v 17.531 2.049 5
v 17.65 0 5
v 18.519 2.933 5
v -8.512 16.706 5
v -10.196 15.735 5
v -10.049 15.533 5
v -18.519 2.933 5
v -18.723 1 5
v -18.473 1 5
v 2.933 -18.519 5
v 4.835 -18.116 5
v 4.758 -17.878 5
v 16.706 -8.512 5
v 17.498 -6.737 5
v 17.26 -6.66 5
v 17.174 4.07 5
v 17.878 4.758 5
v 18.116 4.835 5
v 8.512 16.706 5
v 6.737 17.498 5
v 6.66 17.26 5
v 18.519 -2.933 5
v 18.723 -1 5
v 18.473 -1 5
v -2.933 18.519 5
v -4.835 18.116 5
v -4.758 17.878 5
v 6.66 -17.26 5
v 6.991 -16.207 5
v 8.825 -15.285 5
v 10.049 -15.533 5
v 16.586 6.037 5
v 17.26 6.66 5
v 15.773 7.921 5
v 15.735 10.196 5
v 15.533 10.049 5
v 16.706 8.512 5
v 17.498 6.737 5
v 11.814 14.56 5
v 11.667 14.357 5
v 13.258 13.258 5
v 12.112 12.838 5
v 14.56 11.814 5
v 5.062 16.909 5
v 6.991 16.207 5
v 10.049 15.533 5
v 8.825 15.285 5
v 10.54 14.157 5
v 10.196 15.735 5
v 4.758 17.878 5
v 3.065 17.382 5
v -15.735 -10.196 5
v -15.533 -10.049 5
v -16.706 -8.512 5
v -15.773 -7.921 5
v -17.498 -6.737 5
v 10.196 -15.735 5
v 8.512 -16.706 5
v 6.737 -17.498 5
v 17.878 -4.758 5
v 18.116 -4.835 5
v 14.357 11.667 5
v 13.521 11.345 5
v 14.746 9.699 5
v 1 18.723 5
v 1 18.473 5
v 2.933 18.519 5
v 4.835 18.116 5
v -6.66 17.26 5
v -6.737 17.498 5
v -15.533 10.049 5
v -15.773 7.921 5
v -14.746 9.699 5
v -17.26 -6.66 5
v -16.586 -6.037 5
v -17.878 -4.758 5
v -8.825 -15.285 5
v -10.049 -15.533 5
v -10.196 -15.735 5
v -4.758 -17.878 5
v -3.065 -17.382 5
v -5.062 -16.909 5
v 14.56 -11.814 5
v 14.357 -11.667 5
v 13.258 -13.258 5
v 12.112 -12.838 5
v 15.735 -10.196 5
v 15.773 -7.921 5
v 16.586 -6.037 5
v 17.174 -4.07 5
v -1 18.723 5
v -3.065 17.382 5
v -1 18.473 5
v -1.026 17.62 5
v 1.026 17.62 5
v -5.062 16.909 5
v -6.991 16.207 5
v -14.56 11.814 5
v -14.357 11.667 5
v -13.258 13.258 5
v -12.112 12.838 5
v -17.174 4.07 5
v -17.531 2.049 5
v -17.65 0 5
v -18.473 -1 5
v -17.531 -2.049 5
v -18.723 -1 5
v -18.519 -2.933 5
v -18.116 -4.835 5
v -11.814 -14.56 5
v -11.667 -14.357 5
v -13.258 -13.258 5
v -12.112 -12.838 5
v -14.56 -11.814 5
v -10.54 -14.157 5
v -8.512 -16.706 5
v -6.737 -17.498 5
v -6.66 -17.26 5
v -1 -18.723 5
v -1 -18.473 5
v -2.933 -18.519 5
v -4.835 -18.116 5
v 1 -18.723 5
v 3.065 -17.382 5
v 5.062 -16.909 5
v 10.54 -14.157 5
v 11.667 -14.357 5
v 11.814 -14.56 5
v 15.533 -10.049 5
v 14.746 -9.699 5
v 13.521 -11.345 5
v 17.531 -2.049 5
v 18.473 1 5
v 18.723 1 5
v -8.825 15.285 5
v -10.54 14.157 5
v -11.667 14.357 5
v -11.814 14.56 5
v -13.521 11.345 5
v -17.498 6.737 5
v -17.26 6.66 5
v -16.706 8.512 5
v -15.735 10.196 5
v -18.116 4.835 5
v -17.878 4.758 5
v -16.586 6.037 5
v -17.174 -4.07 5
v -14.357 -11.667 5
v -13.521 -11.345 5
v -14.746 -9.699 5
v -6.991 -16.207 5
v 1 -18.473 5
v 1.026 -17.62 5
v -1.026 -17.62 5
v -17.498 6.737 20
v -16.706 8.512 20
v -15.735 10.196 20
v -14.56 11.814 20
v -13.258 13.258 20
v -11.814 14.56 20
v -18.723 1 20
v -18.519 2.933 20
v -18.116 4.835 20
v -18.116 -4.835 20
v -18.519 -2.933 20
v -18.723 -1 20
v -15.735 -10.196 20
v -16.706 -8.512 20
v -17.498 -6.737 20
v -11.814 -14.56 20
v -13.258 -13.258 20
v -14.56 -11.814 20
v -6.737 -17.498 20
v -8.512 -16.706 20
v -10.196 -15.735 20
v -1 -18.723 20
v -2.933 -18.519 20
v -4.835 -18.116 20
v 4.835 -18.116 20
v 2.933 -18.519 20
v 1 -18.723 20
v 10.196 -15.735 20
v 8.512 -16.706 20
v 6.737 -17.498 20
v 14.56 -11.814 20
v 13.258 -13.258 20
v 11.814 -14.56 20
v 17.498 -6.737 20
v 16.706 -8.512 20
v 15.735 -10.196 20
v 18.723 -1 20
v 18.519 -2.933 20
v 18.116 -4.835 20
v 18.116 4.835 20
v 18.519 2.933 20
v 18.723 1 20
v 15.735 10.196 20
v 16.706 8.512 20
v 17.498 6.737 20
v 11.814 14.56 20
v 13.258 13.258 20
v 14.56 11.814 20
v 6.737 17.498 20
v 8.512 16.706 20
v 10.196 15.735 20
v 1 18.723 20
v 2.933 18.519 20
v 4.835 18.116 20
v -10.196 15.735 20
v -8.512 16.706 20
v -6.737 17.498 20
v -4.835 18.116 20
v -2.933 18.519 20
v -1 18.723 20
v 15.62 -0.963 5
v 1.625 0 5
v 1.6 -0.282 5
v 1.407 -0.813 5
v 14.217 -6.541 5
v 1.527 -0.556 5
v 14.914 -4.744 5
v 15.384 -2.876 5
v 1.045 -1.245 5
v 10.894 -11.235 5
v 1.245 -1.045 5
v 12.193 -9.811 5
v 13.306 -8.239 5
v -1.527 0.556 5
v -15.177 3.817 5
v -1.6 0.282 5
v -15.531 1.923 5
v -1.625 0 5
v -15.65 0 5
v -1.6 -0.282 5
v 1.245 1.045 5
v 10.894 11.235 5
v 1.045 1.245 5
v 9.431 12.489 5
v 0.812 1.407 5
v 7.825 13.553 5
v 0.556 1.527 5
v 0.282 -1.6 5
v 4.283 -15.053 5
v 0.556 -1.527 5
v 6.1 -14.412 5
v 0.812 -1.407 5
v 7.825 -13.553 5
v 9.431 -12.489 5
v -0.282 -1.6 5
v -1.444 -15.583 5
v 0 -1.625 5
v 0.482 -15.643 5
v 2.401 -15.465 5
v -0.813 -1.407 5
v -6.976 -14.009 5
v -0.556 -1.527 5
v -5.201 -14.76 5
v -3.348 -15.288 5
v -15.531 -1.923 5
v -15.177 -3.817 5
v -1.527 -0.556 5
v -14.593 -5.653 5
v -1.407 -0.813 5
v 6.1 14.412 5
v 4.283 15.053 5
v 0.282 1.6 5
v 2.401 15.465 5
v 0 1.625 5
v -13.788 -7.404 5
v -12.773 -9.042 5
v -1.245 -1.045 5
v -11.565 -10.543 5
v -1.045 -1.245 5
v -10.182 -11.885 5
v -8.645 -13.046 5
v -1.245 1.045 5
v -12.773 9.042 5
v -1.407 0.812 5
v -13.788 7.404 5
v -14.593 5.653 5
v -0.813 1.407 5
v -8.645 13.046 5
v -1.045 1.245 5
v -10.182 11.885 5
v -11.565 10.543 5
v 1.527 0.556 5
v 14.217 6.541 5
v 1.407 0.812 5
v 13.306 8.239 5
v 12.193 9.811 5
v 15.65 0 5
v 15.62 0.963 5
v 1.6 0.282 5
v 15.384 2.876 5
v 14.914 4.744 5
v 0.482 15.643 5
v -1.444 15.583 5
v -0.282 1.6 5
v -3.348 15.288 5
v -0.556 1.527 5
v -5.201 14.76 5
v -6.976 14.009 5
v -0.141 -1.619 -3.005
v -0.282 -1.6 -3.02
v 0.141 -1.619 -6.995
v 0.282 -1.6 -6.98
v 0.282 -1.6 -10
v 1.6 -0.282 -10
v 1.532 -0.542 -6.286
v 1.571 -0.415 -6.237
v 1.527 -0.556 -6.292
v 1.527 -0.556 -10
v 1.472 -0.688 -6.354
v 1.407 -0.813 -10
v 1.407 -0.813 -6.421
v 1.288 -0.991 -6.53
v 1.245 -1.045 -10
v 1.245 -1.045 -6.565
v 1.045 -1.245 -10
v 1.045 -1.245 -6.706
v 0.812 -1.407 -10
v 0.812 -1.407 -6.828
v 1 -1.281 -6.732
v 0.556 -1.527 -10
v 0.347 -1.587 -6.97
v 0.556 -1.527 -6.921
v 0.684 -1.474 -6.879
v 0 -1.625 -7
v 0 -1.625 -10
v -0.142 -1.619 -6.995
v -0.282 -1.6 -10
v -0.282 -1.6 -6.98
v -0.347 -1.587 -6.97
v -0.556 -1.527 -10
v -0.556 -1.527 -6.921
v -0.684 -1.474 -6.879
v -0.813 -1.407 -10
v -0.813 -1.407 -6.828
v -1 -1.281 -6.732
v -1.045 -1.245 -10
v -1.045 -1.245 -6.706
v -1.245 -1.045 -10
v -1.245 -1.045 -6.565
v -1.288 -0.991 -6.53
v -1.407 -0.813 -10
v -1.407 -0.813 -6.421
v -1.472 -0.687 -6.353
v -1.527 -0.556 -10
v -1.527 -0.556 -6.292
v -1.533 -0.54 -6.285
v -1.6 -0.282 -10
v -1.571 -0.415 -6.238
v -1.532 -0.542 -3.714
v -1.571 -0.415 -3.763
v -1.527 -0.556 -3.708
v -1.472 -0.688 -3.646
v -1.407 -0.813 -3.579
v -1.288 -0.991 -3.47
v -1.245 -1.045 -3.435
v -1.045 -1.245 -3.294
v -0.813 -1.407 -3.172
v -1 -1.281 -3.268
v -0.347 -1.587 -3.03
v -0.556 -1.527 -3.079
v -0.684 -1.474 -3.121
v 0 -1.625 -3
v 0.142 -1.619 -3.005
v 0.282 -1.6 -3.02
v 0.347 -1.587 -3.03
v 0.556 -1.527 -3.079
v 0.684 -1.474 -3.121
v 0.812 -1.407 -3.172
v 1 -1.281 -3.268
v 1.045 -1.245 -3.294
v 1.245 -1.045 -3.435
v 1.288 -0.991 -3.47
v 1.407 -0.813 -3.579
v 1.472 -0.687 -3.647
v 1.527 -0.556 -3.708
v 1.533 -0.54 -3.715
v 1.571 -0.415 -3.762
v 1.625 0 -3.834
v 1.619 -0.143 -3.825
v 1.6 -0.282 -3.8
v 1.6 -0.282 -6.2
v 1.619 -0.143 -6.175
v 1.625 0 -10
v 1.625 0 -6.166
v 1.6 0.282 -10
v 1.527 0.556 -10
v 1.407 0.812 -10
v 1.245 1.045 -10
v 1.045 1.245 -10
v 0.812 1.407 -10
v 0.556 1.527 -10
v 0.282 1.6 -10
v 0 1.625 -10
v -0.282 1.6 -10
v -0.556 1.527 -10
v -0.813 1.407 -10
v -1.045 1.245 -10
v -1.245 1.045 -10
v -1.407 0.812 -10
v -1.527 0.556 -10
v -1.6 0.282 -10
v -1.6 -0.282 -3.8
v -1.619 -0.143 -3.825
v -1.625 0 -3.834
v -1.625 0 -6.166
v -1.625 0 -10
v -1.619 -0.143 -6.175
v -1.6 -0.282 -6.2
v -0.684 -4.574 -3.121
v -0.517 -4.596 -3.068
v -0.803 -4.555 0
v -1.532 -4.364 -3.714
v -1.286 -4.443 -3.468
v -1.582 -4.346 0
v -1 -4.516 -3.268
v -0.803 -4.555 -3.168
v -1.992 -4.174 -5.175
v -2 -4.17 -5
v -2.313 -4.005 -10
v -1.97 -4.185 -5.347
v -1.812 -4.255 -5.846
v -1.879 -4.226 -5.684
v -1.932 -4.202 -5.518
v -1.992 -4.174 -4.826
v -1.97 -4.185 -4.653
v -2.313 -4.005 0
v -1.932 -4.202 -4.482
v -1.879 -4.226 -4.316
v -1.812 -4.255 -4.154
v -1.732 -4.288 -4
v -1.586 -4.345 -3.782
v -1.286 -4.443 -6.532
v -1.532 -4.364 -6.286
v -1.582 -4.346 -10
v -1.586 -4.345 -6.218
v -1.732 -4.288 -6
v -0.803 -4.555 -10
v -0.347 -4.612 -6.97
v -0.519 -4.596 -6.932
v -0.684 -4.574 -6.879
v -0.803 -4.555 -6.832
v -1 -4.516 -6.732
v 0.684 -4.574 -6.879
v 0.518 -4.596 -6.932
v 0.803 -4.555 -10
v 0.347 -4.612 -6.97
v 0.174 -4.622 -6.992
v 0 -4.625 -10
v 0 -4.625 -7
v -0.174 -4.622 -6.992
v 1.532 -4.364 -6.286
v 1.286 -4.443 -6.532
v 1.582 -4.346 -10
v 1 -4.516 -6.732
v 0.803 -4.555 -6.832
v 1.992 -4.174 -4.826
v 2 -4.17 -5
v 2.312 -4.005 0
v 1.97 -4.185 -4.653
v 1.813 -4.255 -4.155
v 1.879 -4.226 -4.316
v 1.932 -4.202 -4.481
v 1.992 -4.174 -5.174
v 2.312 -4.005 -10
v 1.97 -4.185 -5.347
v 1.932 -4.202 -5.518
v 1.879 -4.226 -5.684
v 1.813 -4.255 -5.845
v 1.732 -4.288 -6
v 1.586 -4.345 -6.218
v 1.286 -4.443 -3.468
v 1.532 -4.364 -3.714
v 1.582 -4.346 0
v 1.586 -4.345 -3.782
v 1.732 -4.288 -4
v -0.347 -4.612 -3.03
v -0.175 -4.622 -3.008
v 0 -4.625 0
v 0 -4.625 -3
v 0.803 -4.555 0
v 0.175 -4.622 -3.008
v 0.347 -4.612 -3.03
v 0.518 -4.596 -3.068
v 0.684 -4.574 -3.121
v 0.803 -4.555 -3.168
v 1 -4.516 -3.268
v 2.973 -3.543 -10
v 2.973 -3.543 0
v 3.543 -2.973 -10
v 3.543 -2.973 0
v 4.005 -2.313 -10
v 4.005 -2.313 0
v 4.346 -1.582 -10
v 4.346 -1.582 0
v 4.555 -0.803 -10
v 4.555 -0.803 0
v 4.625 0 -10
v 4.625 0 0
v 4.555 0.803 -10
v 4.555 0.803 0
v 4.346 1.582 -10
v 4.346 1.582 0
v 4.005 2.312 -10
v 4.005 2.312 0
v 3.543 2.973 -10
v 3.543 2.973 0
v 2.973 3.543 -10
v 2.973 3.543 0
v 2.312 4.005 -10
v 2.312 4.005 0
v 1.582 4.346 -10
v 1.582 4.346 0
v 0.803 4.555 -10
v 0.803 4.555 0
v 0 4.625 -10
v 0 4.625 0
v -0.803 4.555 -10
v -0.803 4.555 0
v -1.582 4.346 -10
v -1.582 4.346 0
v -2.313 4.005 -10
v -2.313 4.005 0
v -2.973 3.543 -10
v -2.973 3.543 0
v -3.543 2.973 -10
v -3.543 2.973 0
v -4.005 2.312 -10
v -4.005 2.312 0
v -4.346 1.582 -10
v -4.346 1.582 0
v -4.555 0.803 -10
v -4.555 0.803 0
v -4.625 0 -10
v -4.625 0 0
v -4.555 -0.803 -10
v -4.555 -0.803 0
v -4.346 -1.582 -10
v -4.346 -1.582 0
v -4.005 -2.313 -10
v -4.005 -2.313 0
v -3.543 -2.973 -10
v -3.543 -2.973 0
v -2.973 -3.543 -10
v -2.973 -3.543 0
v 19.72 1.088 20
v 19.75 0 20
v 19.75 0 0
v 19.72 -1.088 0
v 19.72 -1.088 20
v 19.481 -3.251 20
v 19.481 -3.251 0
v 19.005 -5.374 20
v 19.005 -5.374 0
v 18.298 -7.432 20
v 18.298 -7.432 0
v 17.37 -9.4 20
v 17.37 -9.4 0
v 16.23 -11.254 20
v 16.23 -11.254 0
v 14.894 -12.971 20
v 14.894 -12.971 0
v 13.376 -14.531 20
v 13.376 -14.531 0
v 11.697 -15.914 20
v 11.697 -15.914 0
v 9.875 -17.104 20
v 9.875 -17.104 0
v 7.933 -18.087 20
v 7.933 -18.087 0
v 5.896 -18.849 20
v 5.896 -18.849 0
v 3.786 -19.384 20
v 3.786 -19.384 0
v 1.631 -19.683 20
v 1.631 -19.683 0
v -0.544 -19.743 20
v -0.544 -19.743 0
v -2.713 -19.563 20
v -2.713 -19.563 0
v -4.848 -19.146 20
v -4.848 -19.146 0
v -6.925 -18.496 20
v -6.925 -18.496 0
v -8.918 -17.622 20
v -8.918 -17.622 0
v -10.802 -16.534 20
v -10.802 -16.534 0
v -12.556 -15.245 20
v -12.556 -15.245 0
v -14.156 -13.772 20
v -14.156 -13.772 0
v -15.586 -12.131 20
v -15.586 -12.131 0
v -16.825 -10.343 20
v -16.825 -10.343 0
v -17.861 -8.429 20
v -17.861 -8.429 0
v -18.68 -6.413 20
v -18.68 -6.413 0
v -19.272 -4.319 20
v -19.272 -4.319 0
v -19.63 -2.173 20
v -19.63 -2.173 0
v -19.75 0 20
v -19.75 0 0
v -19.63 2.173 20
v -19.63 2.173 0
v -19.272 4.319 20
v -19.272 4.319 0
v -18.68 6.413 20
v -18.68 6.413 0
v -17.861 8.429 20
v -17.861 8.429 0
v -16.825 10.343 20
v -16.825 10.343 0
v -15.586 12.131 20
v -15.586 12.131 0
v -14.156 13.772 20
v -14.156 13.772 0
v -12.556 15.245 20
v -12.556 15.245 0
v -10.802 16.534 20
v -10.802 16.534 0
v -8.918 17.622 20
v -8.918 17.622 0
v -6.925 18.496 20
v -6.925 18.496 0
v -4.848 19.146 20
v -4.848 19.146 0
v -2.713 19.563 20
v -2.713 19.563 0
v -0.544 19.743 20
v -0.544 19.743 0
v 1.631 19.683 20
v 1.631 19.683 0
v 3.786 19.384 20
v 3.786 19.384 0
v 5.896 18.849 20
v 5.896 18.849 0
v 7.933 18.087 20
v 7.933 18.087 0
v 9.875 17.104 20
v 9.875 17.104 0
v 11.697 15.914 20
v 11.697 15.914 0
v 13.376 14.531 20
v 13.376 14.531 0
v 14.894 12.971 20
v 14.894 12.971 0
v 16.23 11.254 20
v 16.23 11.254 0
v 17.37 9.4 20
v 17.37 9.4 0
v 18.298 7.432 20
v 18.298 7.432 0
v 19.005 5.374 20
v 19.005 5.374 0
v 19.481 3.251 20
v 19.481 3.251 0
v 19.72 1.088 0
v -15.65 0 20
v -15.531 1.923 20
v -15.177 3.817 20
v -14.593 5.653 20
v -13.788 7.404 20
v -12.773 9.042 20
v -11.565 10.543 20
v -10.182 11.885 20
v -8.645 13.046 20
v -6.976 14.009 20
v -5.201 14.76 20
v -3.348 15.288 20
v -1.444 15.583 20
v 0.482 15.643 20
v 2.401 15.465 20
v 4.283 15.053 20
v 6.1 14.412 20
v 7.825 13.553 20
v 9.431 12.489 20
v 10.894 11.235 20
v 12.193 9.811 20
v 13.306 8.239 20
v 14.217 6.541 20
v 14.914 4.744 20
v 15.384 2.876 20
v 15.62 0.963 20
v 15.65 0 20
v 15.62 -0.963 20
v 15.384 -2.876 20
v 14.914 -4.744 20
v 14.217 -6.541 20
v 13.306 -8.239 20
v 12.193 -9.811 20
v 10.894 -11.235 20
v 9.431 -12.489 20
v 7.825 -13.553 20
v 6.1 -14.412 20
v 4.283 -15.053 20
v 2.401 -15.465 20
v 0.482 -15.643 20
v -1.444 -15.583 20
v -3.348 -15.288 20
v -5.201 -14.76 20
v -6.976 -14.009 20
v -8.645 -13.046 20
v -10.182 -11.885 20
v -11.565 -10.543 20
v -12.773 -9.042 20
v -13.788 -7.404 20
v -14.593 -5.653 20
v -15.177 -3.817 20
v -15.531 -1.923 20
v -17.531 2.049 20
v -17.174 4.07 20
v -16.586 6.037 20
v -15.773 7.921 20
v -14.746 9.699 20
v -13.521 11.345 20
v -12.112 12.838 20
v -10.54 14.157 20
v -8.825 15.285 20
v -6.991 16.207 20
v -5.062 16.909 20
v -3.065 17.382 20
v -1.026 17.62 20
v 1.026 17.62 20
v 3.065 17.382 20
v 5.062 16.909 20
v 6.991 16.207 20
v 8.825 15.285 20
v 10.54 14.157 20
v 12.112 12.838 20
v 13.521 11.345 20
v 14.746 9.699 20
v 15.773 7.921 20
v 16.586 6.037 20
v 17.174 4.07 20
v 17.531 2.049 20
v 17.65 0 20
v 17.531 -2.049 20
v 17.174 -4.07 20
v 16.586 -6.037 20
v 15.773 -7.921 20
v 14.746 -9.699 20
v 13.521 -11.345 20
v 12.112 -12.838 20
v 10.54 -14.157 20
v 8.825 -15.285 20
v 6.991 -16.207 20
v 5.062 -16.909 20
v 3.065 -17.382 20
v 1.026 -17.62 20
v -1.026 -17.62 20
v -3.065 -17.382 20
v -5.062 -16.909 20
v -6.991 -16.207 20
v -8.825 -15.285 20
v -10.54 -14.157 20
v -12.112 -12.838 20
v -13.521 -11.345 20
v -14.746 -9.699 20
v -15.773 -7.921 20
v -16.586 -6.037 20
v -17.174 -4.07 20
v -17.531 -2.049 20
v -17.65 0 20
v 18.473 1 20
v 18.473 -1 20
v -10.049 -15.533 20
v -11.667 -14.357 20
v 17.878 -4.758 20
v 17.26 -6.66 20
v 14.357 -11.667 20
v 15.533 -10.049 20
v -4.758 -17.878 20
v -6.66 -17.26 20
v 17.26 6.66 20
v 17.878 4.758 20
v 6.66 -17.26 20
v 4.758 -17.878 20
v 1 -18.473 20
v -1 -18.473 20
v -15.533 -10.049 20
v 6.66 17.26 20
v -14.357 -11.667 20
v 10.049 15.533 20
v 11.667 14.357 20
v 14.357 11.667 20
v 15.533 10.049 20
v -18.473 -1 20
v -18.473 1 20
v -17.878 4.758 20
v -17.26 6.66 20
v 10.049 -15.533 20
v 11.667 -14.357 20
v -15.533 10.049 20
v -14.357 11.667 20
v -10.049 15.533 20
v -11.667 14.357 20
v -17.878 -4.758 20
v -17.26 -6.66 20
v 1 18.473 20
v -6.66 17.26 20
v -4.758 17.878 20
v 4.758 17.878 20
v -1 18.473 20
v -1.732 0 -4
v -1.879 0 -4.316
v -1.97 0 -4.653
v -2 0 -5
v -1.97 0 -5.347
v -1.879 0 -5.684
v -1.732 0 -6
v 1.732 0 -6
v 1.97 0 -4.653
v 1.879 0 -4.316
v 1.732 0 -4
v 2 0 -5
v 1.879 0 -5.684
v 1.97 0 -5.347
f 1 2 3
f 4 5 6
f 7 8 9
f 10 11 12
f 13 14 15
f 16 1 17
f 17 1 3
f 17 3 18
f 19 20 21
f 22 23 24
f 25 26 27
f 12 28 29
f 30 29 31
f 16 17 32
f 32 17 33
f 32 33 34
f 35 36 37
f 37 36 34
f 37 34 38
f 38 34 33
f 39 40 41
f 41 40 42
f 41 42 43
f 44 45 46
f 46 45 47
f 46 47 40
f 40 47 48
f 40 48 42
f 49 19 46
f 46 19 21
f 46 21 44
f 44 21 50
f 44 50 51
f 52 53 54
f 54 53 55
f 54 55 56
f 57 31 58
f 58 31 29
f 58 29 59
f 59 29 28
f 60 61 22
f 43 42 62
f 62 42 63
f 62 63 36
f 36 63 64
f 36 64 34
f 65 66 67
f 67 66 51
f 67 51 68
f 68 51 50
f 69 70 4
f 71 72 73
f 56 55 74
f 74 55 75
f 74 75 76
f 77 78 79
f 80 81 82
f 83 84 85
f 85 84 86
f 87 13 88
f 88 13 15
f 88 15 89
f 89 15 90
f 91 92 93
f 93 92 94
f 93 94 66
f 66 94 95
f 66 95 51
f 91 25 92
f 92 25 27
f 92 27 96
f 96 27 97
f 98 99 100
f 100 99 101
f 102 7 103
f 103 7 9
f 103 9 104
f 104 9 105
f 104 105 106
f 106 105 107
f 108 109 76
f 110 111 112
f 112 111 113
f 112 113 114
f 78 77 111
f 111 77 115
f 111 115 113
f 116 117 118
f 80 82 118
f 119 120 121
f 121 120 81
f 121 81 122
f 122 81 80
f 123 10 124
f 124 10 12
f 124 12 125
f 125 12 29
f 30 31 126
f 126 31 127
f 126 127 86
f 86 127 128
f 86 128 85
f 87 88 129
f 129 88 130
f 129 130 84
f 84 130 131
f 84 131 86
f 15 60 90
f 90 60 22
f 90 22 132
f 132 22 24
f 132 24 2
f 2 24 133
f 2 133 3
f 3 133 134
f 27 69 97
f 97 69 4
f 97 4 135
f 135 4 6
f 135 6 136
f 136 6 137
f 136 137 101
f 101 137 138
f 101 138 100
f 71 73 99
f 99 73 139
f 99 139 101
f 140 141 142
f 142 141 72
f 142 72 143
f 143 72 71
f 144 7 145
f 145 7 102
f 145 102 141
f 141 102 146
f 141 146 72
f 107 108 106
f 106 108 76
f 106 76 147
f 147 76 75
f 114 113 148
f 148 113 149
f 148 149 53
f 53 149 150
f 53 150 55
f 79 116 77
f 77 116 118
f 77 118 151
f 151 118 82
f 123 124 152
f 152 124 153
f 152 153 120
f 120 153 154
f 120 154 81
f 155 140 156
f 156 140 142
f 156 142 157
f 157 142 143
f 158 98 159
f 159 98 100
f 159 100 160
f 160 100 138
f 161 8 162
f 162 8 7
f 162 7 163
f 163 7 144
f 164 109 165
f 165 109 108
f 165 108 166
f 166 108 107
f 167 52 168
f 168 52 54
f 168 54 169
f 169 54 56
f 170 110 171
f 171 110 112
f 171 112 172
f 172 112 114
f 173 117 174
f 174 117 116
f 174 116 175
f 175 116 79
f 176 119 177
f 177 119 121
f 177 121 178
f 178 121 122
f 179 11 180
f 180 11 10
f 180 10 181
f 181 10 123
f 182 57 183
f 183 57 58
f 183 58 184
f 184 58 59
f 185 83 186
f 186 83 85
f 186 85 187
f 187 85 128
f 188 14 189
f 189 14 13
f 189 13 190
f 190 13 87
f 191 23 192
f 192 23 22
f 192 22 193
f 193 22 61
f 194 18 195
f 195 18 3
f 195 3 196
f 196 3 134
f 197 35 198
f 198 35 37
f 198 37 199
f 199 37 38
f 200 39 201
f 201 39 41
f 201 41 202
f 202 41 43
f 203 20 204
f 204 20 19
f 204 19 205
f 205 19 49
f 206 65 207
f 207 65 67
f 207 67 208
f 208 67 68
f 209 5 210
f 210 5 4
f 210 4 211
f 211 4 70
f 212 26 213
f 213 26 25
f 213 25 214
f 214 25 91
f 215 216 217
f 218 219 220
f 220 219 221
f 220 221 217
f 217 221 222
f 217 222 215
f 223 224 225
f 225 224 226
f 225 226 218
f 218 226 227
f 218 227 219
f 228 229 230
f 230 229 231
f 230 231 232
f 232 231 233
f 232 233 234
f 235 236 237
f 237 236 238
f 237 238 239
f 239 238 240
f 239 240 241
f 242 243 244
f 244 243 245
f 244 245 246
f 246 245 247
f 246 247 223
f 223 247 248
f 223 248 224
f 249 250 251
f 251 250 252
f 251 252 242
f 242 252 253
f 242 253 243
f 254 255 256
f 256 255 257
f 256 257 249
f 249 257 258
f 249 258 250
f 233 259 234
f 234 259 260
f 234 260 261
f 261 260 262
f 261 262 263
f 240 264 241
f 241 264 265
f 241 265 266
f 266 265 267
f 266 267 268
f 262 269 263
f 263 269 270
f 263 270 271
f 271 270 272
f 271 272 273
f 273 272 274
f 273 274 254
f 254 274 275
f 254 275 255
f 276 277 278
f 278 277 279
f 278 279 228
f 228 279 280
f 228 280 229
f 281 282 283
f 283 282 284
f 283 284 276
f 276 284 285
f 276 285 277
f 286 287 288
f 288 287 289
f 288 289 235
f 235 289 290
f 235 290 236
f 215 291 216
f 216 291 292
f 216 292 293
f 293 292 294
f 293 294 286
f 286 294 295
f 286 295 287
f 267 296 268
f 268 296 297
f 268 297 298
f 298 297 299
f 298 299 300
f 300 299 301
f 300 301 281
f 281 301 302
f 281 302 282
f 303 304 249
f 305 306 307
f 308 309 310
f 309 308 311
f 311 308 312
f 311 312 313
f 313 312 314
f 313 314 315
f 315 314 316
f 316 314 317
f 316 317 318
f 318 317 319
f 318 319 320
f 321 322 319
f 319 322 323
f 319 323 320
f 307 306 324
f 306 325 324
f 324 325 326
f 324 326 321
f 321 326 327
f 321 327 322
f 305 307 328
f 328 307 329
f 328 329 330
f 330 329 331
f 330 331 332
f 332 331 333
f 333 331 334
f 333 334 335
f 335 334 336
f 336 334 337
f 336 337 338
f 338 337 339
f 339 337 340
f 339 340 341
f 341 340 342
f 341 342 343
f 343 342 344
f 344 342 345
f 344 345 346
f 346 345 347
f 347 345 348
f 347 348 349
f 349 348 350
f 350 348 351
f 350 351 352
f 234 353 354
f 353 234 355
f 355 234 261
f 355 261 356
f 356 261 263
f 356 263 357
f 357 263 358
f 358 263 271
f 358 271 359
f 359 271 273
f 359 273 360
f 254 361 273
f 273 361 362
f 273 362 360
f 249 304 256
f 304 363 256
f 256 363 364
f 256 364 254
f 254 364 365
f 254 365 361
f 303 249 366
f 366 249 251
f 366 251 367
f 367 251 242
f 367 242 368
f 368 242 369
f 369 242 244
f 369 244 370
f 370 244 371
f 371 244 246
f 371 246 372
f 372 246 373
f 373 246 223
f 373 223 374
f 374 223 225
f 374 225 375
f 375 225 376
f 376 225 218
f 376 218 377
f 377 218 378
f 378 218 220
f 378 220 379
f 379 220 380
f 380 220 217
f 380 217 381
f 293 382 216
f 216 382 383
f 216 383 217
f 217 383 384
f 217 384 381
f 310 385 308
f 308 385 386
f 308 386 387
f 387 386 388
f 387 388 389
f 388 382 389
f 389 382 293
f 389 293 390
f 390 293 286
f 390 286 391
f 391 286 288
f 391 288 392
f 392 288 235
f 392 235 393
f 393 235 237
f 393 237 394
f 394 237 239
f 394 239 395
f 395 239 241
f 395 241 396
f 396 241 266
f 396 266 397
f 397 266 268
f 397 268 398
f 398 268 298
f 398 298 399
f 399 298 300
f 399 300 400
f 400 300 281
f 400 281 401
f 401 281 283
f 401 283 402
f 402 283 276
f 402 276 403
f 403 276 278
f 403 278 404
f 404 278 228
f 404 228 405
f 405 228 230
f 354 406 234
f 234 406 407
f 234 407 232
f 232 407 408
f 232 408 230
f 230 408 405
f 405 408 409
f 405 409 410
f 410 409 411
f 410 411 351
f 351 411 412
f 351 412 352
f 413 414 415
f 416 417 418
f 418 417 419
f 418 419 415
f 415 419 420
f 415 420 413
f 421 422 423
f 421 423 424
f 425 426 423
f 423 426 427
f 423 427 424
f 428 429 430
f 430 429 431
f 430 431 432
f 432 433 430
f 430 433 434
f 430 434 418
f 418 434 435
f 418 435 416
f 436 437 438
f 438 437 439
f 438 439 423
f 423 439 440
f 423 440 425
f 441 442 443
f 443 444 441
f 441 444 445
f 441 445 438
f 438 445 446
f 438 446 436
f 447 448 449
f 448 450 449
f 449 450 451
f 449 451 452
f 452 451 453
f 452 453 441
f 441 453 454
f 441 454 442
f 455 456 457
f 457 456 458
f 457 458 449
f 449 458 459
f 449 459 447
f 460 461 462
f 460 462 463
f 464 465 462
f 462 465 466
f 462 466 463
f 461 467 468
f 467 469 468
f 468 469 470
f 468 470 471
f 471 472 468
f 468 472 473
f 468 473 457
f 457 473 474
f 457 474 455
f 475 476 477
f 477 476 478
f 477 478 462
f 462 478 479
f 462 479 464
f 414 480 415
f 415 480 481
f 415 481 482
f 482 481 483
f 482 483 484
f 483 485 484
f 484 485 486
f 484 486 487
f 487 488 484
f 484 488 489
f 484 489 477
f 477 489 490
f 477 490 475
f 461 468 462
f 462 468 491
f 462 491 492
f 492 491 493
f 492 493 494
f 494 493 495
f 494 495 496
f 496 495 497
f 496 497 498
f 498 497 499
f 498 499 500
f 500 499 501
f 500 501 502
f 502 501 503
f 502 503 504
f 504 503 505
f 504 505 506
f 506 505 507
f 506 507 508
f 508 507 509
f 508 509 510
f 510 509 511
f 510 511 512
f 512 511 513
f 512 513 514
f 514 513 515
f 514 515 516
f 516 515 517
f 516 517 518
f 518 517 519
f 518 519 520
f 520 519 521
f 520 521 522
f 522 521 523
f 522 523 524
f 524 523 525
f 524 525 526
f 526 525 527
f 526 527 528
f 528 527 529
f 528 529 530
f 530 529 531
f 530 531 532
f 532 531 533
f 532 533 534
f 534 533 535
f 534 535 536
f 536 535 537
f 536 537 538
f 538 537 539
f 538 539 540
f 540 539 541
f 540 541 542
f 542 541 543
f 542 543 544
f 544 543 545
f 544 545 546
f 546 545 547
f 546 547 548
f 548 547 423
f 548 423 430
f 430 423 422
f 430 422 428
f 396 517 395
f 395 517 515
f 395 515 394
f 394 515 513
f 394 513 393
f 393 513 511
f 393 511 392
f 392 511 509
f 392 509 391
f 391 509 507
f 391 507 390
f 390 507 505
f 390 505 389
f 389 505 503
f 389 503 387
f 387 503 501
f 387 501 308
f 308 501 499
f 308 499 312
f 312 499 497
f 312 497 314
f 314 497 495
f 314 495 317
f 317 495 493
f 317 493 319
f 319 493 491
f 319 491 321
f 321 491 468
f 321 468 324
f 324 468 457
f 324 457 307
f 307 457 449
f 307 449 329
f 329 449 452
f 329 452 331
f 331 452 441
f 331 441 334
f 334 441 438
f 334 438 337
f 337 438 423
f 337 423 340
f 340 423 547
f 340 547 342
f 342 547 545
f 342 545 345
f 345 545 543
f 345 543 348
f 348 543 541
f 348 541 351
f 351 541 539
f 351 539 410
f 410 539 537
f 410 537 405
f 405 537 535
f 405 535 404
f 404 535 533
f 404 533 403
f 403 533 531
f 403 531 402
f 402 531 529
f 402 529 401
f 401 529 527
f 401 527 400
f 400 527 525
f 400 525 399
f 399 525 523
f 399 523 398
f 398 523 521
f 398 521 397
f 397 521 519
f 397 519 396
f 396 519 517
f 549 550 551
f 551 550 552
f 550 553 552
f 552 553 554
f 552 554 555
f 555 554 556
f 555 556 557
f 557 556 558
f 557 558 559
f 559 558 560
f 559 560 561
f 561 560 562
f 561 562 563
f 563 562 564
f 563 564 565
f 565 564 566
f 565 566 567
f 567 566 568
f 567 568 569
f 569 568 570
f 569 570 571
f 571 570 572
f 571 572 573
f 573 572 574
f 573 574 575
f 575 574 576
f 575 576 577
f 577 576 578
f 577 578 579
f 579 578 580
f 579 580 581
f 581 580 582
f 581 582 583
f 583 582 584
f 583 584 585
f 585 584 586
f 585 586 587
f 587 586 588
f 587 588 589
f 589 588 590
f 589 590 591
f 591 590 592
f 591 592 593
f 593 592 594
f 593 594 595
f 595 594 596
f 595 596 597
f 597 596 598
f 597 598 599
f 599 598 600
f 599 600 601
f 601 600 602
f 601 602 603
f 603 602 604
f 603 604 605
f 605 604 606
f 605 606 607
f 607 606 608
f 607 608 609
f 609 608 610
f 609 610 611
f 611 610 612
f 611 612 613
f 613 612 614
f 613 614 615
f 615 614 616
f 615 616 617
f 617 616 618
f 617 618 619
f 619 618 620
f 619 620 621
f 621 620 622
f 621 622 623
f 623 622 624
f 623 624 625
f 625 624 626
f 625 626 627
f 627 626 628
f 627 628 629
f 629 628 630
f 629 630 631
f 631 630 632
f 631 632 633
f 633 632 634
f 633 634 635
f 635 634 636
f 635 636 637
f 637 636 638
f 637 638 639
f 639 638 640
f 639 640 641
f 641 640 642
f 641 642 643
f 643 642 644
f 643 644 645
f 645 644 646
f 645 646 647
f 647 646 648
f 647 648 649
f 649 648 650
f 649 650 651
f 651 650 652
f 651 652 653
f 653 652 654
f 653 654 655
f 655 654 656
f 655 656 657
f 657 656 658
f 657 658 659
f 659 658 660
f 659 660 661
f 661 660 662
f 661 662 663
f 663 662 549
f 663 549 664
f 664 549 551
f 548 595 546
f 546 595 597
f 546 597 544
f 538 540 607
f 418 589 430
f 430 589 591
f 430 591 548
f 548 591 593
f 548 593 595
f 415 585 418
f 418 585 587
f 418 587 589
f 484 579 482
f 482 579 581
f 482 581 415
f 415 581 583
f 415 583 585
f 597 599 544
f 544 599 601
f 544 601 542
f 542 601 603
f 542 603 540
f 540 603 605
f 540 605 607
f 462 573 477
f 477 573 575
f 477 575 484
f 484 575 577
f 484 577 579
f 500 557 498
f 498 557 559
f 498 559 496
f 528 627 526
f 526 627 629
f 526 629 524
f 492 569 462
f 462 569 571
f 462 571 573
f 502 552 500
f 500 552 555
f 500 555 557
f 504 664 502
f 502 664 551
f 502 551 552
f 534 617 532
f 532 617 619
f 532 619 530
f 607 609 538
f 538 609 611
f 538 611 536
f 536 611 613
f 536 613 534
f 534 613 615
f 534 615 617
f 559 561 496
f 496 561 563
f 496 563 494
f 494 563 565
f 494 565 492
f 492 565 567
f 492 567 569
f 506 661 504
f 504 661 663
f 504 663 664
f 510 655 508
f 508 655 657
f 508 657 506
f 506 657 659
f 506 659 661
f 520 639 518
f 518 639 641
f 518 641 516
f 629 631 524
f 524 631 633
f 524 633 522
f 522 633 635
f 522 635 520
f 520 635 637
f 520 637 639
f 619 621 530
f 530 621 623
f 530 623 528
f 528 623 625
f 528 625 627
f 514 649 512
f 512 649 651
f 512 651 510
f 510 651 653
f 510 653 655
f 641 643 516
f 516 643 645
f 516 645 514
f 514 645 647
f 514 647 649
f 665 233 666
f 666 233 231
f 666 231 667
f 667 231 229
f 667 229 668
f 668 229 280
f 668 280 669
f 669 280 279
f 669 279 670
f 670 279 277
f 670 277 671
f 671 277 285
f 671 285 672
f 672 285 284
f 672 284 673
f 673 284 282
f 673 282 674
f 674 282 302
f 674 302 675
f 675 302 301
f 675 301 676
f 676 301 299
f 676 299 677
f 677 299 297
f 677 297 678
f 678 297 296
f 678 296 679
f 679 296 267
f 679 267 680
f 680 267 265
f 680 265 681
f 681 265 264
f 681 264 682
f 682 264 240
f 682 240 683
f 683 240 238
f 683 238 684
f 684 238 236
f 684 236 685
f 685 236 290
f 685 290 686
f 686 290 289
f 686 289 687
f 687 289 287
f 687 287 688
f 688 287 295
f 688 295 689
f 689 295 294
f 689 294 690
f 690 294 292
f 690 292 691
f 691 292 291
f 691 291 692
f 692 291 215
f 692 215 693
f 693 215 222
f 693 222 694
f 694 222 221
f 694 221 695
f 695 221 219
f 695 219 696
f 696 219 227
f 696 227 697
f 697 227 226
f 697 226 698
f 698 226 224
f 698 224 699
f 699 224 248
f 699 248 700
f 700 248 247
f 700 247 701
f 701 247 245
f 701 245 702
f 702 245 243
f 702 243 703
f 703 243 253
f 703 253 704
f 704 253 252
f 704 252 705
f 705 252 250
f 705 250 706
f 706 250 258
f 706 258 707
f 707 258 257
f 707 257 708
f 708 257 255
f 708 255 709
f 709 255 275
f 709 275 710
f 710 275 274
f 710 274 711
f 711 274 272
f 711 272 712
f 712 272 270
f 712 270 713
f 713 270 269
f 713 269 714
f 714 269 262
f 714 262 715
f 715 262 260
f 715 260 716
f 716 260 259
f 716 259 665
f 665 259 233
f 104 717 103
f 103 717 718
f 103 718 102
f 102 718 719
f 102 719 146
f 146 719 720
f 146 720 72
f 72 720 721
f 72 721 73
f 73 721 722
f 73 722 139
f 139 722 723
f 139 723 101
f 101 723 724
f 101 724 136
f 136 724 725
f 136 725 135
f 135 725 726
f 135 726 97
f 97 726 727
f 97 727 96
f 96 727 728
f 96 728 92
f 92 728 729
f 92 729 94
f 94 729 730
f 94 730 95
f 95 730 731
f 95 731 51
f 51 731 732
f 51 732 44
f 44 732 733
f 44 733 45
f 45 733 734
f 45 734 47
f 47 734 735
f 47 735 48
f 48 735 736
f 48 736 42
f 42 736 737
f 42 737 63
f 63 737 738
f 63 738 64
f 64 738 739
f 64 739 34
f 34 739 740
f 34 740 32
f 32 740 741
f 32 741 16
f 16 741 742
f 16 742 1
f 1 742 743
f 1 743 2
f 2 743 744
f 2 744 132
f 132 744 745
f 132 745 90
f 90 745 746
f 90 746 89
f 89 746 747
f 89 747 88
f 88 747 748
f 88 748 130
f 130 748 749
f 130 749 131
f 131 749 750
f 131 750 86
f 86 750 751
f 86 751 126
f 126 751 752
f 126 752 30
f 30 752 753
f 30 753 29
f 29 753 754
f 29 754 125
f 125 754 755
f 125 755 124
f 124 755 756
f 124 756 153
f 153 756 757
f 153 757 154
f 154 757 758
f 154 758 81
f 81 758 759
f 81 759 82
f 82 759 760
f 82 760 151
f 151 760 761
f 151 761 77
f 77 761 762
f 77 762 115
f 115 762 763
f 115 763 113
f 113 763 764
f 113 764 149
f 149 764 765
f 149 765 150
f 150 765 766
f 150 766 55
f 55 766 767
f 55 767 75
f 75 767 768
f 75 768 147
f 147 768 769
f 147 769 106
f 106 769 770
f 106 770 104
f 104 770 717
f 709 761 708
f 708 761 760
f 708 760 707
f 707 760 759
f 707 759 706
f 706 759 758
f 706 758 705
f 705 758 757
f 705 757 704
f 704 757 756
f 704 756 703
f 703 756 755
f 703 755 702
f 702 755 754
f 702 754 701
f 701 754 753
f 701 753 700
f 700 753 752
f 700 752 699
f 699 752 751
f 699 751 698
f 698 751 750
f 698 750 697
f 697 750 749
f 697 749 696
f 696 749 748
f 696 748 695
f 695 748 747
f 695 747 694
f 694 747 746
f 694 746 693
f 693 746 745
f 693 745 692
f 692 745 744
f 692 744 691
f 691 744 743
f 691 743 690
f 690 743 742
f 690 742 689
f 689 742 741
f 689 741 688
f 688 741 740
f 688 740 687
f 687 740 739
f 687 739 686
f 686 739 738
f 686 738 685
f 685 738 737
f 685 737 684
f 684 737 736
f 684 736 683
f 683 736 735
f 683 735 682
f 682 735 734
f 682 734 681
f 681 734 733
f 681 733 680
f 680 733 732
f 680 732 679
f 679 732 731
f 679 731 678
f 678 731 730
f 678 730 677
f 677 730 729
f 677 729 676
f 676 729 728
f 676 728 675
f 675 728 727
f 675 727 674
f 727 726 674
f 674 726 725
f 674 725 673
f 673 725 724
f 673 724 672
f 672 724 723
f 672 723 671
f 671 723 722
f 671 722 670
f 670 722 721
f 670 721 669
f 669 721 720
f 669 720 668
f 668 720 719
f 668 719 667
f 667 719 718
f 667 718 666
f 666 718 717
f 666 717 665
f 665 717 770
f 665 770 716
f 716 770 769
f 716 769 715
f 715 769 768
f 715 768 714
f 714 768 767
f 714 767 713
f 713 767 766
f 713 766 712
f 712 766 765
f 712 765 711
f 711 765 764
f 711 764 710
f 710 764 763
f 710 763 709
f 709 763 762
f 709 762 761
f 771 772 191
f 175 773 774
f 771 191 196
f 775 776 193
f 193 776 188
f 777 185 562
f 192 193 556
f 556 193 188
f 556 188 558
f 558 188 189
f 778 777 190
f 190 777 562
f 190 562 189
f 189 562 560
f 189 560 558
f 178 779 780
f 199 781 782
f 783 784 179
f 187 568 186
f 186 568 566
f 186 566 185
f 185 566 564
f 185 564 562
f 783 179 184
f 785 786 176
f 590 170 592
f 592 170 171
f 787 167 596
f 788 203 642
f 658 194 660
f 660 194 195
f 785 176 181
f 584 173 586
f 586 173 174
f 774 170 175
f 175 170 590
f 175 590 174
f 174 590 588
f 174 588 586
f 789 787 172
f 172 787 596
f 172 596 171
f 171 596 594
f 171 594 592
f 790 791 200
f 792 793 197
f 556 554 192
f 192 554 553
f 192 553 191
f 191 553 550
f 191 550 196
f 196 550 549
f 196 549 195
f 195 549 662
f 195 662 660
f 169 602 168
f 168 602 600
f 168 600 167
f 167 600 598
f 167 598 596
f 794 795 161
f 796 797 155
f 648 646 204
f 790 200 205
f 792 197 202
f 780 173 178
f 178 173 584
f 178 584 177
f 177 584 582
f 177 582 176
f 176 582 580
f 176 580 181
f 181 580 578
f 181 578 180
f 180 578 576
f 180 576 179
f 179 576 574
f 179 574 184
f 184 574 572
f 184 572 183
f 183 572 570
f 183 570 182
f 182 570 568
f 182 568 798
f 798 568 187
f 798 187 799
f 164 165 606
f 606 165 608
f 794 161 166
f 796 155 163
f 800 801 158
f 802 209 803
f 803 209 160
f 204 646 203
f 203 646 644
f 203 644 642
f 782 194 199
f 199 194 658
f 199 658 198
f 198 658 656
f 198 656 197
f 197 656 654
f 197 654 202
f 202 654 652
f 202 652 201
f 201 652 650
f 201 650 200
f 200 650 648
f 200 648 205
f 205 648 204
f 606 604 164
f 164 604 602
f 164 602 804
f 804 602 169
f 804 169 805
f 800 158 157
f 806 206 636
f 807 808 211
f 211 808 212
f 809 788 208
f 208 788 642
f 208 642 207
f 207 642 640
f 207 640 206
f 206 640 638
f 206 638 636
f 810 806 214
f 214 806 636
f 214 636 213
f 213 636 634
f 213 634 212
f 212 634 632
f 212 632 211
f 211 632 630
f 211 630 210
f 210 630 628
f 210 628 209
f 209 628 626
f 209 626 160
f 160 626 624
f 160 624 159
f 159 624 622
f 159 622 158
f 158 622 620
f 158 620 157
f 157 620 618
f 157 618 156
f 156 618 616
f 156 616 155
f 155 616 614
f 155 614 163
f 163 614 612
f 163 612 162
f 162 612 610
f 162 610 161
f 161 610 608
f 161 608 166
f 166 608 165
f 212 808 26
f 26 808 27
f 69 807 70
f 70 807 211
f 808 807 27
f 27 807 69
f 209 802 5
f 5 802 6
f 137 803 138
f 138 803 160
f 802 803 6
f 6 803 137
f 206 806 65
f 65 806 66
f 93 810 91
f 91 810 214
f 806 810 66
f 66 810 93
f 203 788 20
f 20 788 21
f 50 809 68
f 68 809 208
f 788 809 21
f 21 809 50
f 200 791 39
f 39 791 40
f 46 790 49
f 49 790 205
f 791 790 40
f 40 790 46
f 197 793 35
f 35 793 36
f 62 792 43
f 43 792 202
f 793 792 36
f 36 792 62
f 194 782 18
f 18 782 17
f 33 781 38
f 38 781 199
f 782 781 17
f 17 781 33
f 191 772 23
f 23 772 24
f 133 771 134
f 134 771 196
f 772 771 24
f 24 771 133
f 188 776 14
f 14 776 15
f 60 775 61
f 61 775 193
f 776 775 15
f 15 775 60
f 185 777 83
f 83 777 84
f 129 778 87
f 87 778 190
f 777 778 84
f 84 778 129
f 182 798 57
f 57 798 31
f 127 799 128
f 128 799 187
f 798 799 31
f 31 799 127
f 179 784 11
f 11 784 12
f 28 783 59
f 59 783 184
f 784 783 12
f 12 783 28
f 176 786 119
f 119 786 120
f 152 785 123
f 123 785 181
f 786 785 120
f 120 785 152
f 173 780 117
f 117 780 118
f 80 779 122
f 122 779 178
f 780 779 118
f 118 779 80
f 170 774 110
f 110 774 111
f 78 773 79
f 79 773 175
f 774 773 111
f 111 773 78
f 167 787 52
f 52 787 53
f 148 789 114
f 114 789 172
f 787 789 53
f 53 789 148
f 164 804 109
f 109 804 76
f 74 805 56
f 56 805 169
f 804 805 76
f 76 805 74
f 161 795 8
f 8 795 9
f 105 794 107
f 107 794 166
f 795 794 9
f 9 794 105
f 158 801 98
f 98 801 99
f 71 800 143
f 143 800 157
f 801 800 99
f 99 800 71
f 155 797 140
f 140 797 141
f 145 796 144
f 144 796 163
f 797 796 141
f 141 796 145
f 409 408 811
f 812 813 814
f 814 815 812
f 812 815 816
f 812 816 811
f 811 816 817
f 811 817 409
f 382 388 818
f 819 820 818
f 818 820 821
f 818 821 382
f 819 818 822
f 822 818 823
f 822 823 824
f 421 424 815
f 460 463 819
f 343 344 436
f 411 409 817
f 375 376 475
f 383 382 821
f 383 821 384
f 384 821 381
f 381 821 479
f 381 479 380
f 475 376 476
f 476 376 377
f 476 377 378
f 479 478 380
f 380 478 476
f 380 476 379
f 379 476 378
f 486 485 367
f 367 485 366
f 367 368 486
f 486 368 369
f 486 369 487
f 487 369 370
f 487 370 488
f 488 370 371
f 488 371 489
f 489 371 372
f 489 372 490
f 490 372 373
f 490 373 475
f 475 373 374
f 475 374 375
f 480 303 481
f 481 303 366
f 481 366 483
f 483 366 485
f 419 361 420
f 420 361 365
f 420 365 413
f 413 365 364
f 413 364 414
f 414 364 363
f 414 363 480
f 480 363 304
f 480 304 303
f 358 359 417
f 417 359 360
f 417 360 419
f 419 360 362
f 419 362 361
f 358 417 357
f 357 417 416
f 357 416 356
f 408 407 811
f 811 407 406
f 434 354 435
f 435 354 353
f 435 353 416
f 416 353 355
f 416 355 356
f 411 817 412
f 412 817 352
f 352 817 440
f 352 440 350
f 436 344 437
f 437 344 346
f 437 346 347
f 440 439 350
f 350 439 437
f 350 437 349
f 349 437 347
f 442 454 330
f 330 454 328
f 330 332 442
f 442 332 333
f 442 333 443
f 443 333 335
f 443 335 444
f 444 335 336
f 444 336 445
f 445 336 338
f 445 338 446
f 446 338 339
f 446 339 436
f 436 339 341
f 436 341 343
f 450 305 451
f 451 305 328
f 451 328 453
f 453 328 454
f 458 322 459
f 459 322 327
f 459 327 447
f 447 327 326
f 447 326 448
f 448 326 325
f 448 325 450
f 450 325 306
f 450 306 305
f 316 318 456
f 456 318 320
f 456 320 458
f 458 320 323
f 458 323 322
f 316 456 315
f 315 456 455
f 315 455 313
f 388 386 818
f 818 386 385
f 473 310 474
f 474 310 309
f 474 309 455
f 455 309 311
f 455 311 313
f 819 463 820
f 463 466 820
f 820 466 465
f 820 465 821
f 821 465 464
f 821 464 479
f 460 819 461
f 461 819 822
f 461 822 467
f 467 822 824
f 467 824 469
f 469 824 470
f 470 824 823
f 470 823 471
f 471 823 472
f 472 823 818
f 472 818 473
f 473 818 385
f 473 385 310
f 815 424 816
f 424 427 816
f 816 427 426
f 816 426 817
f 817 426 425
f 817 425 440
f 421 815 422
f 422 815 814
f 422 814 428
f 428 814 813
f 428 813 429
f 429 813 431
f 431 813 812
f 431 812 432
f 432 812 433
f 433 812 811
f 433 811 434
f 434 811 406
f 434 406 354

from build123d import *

# Parameters (mm, degrees)
SKETCH1_R           = 4.625
SKETCH1_R_2         = 1.625
BOSS_EXTRUDE1_DEPTH = 10
SKETCH1_3_R         = 19.75
SKETCH1_3_R_2       = 18.75
SKETCH1_3_R_3       = 17.65
SKETCH1_3_R_4       = 4.625
SKETCH1_3_R_5       = 15.65
SKETCH1_3_R_6       = 1.625
BOSS_EXTRUDE2_DEPTH = 5
SKETCH1_4_R         = 19.75
SKETCH1_4_R_2       = 18.75
SKETCH1_4_R_3       = 17.65
SKETCH1_4_R_4       = 15.65
BOSS_EXTRUDE3_DEPTH = 20
BOSS_EXTRUDE4_DEPTH = 20
SKETCH3_R           = 2
CUT_EXTRUDE1_DEPTH  = 35.352947472


with BuildPart() as part:
    # Sketch1 → Boss-Extrude1 (new body)
    with BuildSketch(Plane.XY):
        Circle(SKETCH1_R)
        Circle(SKETCH1_R_2, mode=Mode.SUBTRACT)
    extrude(amount=-BOSS_EXTRUDE1_DEPTH)



with BuildPart() as body_2:
    # Sketch1<3> → Boss-Extrude2 (new body)
    with BuildSketch(Plane.XY):
        Circle(SKETCH1_3_R)
        Circle(SKETCH1_3_R_2, mode=Mode.SUBTRACT)
        Circle(SKETCH1_3_R_2)
        Circle(SKETCH1_3_R_3, mode=Mode.SUBTRACT)
        Circle(SKETCH1_3_R_3)
        Circle(SKETCH1_3_R_4, mode=Mode.SUBTRACT)
        Circle(SKETCH1_3_R_5)
        Circle(SKETCH1_3_R_4, mode=Mode.SUBTRACT)
        Circle(SKETCH1_3_R_4)
        Circle(SKETCH1_3_R_6, mode=Mode.SUBTRACT)
    extrude(amount=BOSS_EXTRUDE2_DEPTH)


with BuildPart() as part_1:
    add(part.part)

    add(body_2.part)  # Boss-Extrude3 merges body 2
    # Sketch1<4> → Boss-Extrude3 (add)
    with BuildSketch(Plane.XY):
        Circle(SKETCH1_4_R)
        Circle(SKETCH1_4_R_2, mode=Mode.SUBTRACT)
        Circle(SKETCH1_4_R_3)
        Circle(SKETCH1_4_R_4, mode=Mode.SUBTRACT)
    extrude(amount=BOSS_EXTRUDE3_DEPTH)

    # Sketch2 → Boss-Extrude4 (add)
    with BuildSketch(Plane.XY):
        with BuildLine():
            Line((-4.757511558, 17.878182978), (-4.834765807, 18.115947107))
            ThreePointArc((-4.834765807, 18.115947107), (-5.794068645, 17.832309681), (-6.736878839, 17.497913119))
            Line((-6.736878839, 17.497913119), (-6.659624591, 17.260148989))
            Line((-6.659624591, 17.260148989), (-4.757511558, 17.878182978))
        make_face()
        with BuildLine():
            Line((-10.049324738, 15.533010498), (-10.196271051, 15.735264747))
            ThreePointArc((-10.196271051, 15.735264747), (-11.02097348, 15.169068645), (-11.814305039, 14.559694243))
            Line((-11.814305039, 14.559694243), (-11.667358726, 14.357439994))
            Line((-11.667358726, 14.357439994), (-10.049324738, 15.533010498))
        make_face()
        with BuildLine():
            Line((1, 18.473314343), (1, 18.723314343))
            ThreePointArc((1, 18.723314343), (0, 18.75), (-1, 18.723314343))
            Line((-1, 18.723314343), (-1, 18.473314343))
            Line((-1, 18.473314343), (1, 18.473314343))
        make_face()
        with BuildLine():
            Line((4.834765807, 18.115947107), (4.757511558, 17.878182978))
            Line((4.757511558, 17.878182978), (6.659624591, 17.260148989))
            Line((6.659624591, 17.260148989), (6.736878839, 17.497913119))
            ThreePointArc((6.736878839, 17.497913119), (5.794068645, 17.832309681), (4.834765807, 18.115947107))
        make_face()
        with BuildLine():
            ThreePointArc((11.814305039, 14.559694243), (11.02097348, 15.169068645), (10.196271051, 15.735264747))
            Line((10.196271051, 15.735264747), (10.049324738, 15.533010498))
            Line((10.049324738, 15.533010498), (11.667358726, 14.357439994))
            Line((11.667358726, 14.357439994), (11.814305039, 14.559694243))
        make_face()
        with BuildLine():
            ThreePointArc((15.735264747, 10.196271051), (15.169068645, 11.02097348), (14.559694243, 11.814305039))
            Line((14.559694243, 11.814305039), (14.357439994, 11.667358726))
            Line((14.357439994, 11.667358726), (15.533010498, 10.049324738))
            Line((15.533010498, 10.049324738), (15.735264747, 10.196271051))
        make_face()
        with BuildLine():
            ThreePointArc((18.115947107, 4.834765807), (17.832309681, 5.794068645), (17.497913119, 6.736878839))
            Line((17.497913119, 6.736878839), (17.260148989, 6.659624591))
            Line((17.260148989, 6.659624591), (17.878182978, 4.757511558))
            Line((17.878182978, 4.757511558), (18.115947107, 4.834765807))
        make_face()
        with BuildLine():
            ThreePointArc((18.75, 0), (18.743327399, 0.500177999), (18.723314343, 1))
            Line((18.723314343, 1), (18.473314343, 1))
            Line((18.473314343, 1), (18.473314343, -1))
            Line((18.473314343, -1), (18.723314343, -1))
            ThreePointArc((18.723314343, -1), (18.743327399, -0.500177999), (18.75, 0))
        make_face()
        with BuildLine():
            ThreePointArc((17.497913119, -6.736878839), (17.832309681, -5.794068645), (18.115947107, -4.834765807))
            Line((18.115947107, -4.834765807), (17.878182978, -4.757511558))
            Line((17.878182978, -4.757511558), (17.260148989, -6.659624591))
            Line((17.260148989, -6.659624591), (17.497913119, -6.736878839))
        make_face()
        with BuildLine():
            ThreePointArc((14.559694243, -11.814305039), (15.169068645, -11.02097348), (15.735264747, -10.196271051))
            Line((15.735264747, -10.196271051), (15.533010498, -10.049324738))
            Line((15.533010498, -10.049324738), (14.357439994, -11.667358726))
            Line((14.357439994, -11.667358726), (14.559694243, -11.814305039))
        make_face()
        with BuildLine():
            ThreePointArc((10.196271051, -15.735264747), (11.02097348, -15.169068645), (11.814305039, -14.559694243))
            Line((11.814305039, -14.559694243), (11.667358726, -14.357439994))
            Line((11.667358726, -14.357439994), (10.049324738, -15.533010498))
            Line((10.049324738, -15.533010498), (10.196271051, -15.735264747))
        make_face()
        with BuildLine():
            ThreePointArc((4.834765807, -18.115947107), (5.794068645, -17.832309681), (6.736878839, -17.497913119))
            Line((6.736878839, -17.497913119), (6.659624591, -17.260148989))
            Line((6.659624591, -17.260148989), (4.757511558, -17.878182978))
            Line((4.757511558, -17.878182978), (4.834765807, -18.115947107))
        make_face()
        with BuildLine():
            ThreePointArc((-1, -18.723314343), (0, -18.75), (1, -18.723314343))
            Line((1, -18.723314343), (1, -18.473314343))
            Line((1, -18.473314343), (-1, -18.473314343))
            Line((-1, -18.473314343), (-1, -18.723314343))
        make_face()
        with BuildLine():
            Line((-6.659624591, -17.260148989), (-6.736878839, -17.497913119))
            ThreePointArc((-6.736878839, -17.497913119), (-5.794068645, -17.832309681), (-4.834765807, -18.115947107))
            Line((-4.834765807, -18.115947107), (-4.757511558, -17.878182978))
            Line((-4.757511558, -17.878182978), (-6.659624591, -17.260148989))
        make_face()
        with BuildLine():
            Line((-11.667358726, -14.357439994), (-11.814305039, -14.559694243))
            ThreePointArc((-11.814305039, -14.559694243), (-11.02097348, -15.169068645), (-10.196271051, -15.735264747))
            Line((-10.196271051, -15.735264747), (-10.049324738, -15.533010498))
            Line((-10.049324738, -15.533010498), (-11.667358726, -14.357439994))
        make_face()
        with BuildLine():
            Line((-15.533010498, -10.049324738), (-15.735264747, -10.196271051))
            ThreePointArc((-15.735264747, -10.196271051), (-15.169068645, -11.02097348), (-14.559694243, -11.814305039))
            Line((-14.559694243, -11.814305039), (-14.357439994, -11.667358726))
            Line((-14.357439994, -11.667358726), (-15.533010498, -10.049324738))
        make_face()
        with BuildLine():
            Line((-17.878182978, -4.757511558), (-18.115947107, -4.834765807))
            ThreePointArc((-18.115947107, -4.834765807), (-17.832309681, -5.794068645), (-17.497913119, -6.736878839))
            Line((-17.497913119, -6.736878839), (-17.260148989, -6.659624591))
            Line((-17.260148989, -6.659624591), (-17.878182978, -4.757511558))
        make_face()
        with BuildLine():
            Line((-18.473314343, 1), (-18.723314343, 1))
            ThreePointArc((-18.723314343, 1), (-18.75, 0), (-18.723314343, -1))
            Line((-18.723314343, -1), (-18.473314343, -1))
            Line((-18.473314343, -1), (-18.473314343, 1))
        make_face()
        with BuildLine():
            Line((-14.357439994, 11.667358726), (-14.559694243, 11.814305039))
            ThreePointArc((-14.559694243, 11.814305039), (-15.169068645, 11.02097348), (-15.735264747, 10.196271051))
            Line((-15.735264747, 10.196271051), (-15.533010498, 10.049324738))
            Line((-15.533010498, 10.049324738), (-14.357439994, 11.667358726))
        make_face()
        with BuildLine():
            Line((-17.260148989, 6.659624591), (-17.497913119, 6.736878839))
            ThreePointArc((-17.497913119, 6.736878839), (-17.832309681, 5.794068645), (-18.115947107, 4.834765807))
            Line((-18.115947107, 4.834765807), (-17.878182978, 4.757511558))
            Line((-17.878182978, 4.757511558), (-17.260148989, 6.659624591))
        make_face()
    extrude(amount=BOSS_EXTRUDE4_DEPTH)

    # Sketch3 → Cut-Extrude1 (cut, through all)
    with BuildSketch(Plane(origin=(0, 0, 0), x_dir=(1, 0, 0), z_dir=(0, 1, 0))):
        with Locations(Location((0, 5, 0), (0, 0, 270))):
            Circle(SKETCH3_R)
    extrude(amount=-CUT_EXTRUDE1_DEPTH, mode=Mode.SUBTRACT)


solid = part_1.part
